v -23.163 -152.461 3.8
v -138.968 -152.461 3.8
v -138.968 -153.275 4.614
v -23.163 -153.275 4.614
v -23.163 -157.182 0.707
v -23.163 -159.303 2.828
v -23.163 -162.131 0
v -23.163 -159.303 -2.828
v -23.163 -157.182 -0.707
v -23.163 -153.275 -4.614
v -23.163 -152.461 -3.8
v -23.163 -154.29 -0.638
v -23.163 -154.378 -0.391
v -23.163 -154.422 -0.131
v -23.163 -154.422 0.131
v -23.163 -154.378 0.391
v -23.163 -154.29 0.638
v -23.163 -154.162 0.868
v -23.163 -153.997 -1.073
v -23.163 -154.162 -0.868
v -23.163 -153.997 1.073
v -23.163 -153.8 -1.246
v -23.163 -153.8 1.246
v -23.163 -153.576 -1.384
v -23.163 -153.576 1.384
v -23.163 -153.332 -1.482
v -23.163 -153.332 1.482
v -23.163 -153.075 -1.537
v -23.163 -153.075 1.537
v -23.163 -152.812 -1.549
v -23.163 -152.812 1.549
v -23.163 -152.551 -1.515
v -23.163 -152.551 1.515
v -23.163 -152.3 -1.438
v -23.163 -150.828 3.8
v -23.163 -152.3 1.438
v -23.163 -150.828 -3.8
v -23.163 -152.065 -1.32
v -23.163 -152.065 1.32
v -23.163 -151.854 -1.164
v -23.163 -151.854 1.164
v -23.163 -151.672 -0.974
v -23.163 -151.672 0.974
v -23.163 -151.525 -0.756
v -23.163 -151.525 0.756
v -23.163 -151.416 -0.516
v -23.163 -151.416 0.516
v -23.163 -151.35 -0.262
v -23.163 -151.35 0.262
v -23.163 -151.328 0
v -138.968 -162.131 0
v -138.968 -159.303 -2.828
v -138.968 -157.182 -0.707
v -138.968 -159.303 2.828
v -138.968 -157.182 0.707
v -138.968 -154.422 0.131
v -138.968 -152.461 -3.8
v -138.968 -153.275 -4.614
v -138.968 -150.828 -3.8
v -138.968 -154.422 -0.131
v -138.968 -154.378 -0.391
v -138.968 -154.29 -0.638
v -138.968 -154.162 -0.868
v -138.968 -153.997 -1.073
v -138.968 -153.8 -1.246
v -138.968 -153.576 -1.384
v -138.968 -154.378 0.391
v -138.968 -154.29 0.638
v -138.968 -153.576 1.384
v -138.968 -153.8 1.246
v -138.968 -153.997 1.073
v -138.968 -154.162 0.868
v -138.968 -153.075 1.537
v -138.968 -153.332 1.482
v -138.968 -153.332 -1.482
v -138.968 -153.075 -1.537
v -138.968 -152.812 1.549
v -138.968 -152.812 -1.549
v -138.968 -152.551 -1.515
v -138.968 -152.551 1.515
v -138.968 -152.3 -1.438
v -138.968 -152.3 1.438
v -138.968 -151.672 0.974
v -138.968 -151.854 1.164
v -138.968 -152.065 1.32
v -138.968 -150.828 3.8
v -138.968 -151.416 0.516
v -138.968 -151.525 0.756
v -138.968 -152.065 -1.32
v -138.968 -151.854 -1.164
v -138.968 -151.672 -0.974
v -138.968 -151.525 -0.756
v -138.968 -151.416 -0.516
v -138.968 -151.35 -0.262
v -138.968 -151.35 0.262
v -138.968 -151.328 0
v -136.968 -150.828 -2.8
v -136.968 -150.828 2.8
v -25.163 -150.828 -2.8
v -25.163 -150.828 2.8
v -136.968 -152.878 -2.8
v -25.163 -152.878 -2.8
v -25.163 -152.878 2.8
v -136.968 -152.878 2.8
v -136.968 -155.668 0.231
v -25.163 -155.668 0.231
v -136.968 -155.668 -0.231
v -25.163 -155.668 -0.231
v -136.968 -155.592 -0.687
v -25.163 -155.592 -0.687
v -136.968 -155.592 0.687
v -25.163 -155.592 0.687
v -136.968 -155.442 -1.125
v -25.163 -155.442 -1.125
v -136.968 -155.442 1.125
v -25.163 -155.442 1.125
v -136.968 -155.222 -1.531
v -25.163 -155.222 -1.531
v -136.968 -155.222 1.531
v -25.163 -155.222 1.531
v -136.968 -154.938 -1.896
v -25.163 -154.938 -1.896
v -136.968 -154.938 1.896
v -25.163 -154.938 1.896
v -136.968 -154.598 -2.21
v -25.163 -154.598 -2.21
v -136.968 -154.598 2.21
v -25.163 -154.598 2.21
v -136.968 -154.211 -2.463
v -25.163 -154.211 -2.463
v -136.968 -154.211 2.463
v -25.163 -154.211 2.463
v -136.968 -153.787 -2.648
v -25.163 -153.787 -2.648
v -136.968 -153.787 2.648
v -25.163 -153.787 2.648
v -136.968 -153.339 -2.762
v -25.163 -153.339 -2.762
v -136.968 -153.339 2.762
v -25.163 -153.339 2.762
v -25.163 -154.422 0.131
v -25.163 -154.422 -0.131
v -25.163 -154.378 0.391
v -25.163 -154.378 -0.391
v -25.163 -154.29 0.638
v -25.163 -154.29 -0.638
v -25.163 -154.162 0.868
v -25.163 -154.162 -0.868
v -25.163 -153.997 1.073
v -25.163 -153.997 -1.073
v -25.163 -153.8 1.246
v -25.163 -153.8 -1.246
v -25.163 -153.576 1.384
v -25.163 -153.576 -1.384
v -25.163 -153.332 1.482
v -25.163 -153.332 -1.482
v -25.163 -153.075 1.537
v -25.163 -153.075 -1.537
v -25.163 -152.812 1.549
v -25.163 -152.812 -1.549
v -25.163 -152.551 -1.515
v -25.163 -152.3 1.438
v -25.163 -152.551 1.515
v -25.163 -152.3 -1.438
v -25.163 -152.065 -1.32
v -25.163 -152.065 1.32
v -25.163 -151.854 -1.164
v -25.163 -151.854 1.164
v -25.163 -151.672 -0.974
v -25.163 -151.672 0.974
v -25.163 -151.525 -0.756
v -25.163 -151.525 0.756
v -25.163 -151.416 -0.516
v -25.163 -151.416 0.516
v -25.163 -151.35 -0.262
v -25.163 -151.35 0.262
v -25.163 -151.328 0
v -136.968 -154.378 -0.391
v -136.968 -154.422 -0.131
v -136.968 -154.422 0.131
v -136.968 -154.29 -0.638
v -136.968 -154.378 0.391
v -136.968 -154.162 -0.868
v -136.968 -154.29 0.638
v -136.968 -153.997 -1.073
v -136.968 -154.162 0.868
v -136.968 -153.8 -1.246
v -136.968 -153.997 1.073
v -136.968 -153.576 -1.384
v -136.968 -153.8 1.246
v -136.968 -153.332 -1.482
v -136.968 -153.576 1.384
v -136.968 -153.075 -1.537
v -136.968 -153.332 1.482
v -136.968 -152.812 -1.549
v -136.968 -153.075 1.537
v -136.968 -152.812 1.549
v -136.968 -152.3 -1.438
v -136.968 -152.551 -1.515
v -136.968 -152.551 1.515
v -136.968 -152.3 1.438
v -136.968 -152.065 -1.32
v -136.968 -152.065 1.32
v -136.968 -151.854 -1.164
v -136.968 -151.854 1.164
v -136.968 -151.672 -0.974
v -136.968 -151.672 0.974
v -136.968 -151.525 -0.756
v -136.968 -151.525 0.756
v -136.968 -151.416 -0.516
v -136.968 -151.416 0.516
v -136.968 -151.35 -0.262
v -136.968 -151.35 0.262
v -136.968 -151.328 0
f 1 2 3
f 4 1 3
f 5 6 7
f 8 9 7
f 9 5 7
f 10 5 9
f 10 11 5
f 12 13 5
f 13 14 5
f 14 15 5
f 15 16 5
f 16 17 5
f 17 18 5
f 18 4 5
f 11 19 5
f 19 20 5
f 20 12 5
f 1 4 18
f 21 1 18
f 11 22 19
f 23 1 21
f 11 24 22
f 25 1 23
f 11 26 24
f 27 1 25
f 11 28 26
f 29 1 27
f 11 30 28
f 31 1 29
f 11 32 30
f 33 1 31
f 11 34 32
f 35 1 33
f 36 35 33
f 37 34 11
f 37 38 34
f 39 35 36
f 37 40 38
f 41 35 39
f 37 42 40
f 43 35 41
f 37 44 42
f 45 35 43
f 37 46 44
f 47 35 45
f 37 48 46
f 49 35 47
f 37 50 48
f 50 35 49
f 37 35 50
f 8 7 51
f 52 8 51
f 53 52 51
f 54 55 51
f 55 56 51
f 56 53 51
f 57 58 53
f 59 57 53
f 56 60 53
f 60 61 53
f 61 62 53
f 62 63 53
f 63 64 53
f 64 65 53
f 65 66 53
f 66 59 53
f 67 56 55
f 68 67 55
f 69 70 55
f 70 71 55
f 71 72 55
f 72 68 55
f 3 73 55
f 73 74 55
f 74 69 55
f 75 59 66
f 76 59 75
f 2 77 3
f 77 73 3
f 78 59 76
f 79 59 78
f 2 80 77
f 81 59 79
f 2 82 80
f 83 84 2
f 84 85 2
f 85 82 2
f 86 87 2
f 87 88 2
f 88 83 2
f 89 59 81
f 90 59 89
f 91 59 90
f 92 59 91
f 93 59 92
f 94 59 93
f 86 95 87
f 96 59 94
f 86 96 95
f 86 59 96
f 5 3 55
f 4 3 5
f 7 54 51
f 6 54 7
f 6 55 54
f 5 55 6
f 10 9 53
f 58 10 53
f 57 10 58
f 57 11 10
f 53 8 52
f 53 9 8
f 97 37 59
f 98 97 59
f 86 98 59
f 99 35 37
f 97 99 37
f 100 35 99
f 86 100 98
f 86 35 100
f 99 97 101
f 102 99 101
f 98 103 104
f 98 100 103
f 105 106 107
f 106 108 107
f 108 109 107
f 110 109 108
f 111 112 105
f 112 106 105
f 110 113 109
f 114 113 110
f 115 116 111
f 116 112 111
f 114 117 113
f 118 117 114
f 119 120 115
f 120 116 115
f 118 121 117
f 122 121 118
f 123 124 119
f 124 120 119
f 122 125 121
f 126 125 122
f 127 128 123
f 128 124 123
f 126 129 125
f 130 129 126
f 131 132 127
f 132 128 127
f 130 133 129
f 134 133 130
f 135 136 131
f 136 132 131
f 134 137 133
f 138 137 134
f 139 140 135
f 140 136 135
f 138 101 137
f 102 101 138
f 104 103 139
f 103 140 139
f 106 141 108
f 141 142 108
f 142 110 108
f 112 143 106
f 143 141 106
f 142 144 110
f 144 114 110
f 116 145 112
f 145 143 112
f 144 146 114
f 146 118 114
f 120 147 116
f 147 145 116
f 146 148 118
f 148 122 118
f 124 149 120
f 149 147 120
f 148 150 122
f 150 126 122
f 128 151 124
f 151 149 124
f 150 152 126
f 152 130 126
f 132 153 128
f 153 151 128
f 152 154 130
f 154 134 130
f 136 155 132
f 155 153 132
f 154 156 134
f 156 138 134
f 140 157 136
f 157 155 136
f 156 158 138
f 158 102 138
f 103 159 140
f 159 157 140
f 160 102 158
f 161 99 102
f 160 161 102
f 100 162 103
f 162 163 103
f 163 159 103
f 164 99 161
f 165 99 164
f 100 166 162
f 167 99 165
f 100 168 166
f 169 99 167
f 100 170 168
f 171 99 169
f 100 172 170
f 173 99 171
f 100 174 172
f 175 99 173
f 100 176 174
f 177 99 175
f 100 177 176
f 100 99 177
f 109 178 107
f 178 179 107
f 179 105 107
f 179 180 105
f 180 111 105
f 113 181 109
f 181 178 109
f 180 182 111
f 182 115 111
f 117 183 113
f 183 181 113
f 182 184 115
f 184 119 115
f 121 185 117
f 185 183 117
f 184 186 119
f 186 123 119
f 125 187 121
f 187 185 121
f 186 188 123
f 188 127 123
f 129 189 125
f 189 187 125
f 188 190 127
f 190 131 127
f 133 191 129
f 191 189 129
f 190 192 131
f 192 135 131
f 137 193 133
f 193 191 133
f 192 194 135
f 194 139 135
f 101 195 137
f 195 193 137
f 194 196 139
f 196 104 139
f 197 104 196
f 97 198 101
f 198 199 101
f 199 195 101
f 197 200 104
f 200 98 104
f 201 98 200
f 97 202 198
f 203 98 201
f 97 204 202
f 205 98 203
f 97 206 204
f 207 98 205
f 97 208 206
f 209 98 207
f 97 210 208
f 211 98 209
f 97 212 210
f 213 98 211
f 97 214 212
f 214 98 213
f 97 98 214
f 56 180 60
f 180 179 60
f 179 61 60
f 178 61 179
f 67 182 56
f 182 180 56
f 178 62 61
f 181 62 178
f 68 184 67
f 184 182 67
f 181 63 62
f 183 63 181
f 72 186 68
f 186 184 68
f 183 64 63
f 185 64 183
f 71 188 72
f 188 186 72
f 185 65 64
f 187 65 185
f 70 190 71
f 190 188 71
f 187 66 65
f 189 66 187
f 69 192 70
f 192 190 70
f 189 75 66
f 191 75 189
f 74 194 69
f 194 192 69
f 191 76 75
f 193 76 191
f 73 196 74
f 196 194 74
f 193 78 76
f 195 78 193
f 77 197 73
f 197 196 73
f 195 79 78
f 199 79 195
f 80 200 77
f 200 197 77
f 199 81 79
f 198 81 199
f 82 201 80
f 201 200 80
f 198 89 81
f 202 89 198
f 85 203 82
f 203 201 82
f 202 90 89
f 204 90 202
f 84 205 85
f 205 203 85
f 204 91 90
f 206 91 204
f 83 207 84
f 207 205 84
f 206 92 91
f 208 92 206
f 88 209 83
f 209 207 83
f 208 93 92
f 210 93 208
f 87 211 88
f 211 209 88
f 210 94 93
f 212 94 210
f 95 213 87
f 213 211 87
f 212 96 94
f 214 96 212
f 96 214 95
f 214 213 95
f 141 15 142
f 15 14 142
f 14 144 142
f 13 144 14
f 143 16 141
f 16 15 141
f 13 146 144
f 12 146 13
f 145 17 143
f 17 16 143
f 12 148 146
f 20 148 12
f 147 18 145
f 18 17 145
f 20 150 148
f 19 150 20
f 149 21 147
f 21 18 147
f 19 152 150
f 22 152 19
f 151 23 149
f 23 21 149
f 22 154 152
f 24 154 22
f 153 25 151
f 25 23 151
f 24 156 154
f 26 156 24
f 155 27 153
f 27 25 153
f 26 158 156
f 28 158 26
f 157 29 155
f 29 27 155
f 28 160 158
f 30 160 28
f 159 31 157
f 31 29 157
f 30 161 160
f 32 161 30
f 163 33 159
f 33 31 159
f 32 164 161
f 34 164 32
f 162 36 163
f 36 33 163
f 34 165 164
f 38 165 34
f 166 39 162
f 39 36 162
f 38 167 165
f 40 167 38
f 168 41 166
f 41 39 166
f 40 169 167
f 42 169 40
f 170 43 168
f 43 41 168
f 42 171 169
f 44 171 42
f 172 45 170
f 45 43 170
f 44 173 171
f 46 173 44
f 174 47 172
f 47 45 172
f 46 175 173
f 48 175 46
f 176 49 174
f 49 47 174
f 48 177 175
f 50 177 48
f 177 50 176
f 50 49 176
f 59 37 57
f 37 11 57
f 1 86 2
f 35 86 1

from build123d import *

# Parameters (mm, degrees)
STOCK_PFRD_START               = -138.967906757
STOCK_PFRD_JOINER_BASE_1_DEPTH = 115.804519766
BOSS_EXTRUDE1_DEPTH            = 115.804519766
CUT_EXTRUDE1_START             = -2
SKETCH3_R                      = 1.55
CUT_EXTRUDE1_DEPTH             = 111.804519766
CUT_EXTRUDE2_DEPTH             = 200.295085296
CUT_EXTRUDE2_DEPTH_BACK        = 200.295085296
SKETCH3_2_R                    = 1.55
BOSS_EXTRUDE2_DEPTH            = 2


# Read off the part's stored shape, not the designer's step: Stock-PFRD - Joiner Base-1
with BuildPart() as part:
    # Stock-PFRD - Joiner Base-1 outline → Stock-PFRD - Joiner Base-1 (new body)
    with BuildSketch(Plane.YZ.offset(STOCK_PFRD_START)):
        Polygon((-152.481031246, -3.820121679), (-152.491152925, -3.81), (-152.491152925, 3.81), (-152.481031246, 3.820121679), (-153.274781314, 4.613871747), (-157.18154628, 0.707106781), (-159.302866623, 2.828427125), (-162.131293748, 0), (-159.302866623, -2.828427125), (-157.18154628, -0.707106781), (-153.274781314, -4.613871747), align=None)
    extrude(amount=STOCK_PFRD_JOINER_BASE_1_DEPTH)

    # Sketch2 → Boss-Extrude1 (add)
    with BuildSketch(Plane.ZY.offset(138.967906757)):
        Polygon((3.830243359, -152.491152925), (2.166996747, -150.827906314), (-2.166996747, -150.827906314), (-3.830243359, -152.491152925), (3.81, -152.491152925), align=None)
    extrude(amount=-BOSS_EXTRUDE1_DEPTH)

    # Sketch3 → Cut-Extrude1 (cut)
    with BuildSketch(Plane(origin=(-23.163386991, 0, 0), x_dir=(0, 0, -1), z_dir=(1, 0, 0)).offset(CUT_EXTRUDE1_START)):
        with BuildLine():
            Line((2.8, -150.827906314), (2.8, -152.877906314))
            ThreePointArc((2.8, -152.877906314), (0, -155.677906314), (-2.8, -152.877906314))
            Line((-2.8, -152.877906314), (-2.8, -150.827906314))
            ThreePointArc((-2.8, -150.827906314), (0, -148.027906314), (2.8, -150.827906314))
        make_face()
        with Locations(Location((0, -152.877906314, 0), (0, 0, 90))):
            Circle(SKETCH3_R, mode=Mode.SUBTRACT)
    extrude(amount=-CUT_EXTRUDE1_DEPTH, mode=Mode.SUBTRACT)

    # Sketch3<2> → Cut-Extrude2 (cut, two sides: drawn at the far end of the back side and taken through both)
    with BuildSketch(Plane(origin=(-23.163386991, 0, 0), x_dir=(0, 0, -1), z_dir=(1, 0, 0)).offset(-CUT_EXTRUDE2_DEPTH_BACK)):
        with Locations(Location((0, -152.877906314, 0), (0, 0, 90))):
            Circle(SKETCH3_2_R)
    extrude(amount=CUT_EXTRUDE2_DEPTH + CUT_EXTRUDE2_DEPTH_BACK, mode=Mode.SUBTRACT)

    # Sketch4 → Boss-Extrude2 (add)
    with BuildSketch(Plane(origin=(0, -150.827906314, 0), x_dir=(1, 0, 0), z_dir=(0, 1, 0))):
        Polygon((-138.967906757, 2.166996747), (-136.967906757, 2.166996747), (-136.967906757, 2.8), (-25.163386991, 2.8), (-25.163386991, 2.166996747), (-23.163386991, 2.166996747), (-23.163386991, 3.8), (-138.967906757, 3.8), align=None)
    boss_extrude2 = extrude(amount=-BOSS_EXTRUDE2_DEPTH)

    # Mirror1: Boss-Extrude2 across plane
    add(boss_extrude2.mirror(Plane(origin=(0, 0, 0), x_dir=(1, 0, 0), z_dir=(0, 0, -1))))


solid = part.part
